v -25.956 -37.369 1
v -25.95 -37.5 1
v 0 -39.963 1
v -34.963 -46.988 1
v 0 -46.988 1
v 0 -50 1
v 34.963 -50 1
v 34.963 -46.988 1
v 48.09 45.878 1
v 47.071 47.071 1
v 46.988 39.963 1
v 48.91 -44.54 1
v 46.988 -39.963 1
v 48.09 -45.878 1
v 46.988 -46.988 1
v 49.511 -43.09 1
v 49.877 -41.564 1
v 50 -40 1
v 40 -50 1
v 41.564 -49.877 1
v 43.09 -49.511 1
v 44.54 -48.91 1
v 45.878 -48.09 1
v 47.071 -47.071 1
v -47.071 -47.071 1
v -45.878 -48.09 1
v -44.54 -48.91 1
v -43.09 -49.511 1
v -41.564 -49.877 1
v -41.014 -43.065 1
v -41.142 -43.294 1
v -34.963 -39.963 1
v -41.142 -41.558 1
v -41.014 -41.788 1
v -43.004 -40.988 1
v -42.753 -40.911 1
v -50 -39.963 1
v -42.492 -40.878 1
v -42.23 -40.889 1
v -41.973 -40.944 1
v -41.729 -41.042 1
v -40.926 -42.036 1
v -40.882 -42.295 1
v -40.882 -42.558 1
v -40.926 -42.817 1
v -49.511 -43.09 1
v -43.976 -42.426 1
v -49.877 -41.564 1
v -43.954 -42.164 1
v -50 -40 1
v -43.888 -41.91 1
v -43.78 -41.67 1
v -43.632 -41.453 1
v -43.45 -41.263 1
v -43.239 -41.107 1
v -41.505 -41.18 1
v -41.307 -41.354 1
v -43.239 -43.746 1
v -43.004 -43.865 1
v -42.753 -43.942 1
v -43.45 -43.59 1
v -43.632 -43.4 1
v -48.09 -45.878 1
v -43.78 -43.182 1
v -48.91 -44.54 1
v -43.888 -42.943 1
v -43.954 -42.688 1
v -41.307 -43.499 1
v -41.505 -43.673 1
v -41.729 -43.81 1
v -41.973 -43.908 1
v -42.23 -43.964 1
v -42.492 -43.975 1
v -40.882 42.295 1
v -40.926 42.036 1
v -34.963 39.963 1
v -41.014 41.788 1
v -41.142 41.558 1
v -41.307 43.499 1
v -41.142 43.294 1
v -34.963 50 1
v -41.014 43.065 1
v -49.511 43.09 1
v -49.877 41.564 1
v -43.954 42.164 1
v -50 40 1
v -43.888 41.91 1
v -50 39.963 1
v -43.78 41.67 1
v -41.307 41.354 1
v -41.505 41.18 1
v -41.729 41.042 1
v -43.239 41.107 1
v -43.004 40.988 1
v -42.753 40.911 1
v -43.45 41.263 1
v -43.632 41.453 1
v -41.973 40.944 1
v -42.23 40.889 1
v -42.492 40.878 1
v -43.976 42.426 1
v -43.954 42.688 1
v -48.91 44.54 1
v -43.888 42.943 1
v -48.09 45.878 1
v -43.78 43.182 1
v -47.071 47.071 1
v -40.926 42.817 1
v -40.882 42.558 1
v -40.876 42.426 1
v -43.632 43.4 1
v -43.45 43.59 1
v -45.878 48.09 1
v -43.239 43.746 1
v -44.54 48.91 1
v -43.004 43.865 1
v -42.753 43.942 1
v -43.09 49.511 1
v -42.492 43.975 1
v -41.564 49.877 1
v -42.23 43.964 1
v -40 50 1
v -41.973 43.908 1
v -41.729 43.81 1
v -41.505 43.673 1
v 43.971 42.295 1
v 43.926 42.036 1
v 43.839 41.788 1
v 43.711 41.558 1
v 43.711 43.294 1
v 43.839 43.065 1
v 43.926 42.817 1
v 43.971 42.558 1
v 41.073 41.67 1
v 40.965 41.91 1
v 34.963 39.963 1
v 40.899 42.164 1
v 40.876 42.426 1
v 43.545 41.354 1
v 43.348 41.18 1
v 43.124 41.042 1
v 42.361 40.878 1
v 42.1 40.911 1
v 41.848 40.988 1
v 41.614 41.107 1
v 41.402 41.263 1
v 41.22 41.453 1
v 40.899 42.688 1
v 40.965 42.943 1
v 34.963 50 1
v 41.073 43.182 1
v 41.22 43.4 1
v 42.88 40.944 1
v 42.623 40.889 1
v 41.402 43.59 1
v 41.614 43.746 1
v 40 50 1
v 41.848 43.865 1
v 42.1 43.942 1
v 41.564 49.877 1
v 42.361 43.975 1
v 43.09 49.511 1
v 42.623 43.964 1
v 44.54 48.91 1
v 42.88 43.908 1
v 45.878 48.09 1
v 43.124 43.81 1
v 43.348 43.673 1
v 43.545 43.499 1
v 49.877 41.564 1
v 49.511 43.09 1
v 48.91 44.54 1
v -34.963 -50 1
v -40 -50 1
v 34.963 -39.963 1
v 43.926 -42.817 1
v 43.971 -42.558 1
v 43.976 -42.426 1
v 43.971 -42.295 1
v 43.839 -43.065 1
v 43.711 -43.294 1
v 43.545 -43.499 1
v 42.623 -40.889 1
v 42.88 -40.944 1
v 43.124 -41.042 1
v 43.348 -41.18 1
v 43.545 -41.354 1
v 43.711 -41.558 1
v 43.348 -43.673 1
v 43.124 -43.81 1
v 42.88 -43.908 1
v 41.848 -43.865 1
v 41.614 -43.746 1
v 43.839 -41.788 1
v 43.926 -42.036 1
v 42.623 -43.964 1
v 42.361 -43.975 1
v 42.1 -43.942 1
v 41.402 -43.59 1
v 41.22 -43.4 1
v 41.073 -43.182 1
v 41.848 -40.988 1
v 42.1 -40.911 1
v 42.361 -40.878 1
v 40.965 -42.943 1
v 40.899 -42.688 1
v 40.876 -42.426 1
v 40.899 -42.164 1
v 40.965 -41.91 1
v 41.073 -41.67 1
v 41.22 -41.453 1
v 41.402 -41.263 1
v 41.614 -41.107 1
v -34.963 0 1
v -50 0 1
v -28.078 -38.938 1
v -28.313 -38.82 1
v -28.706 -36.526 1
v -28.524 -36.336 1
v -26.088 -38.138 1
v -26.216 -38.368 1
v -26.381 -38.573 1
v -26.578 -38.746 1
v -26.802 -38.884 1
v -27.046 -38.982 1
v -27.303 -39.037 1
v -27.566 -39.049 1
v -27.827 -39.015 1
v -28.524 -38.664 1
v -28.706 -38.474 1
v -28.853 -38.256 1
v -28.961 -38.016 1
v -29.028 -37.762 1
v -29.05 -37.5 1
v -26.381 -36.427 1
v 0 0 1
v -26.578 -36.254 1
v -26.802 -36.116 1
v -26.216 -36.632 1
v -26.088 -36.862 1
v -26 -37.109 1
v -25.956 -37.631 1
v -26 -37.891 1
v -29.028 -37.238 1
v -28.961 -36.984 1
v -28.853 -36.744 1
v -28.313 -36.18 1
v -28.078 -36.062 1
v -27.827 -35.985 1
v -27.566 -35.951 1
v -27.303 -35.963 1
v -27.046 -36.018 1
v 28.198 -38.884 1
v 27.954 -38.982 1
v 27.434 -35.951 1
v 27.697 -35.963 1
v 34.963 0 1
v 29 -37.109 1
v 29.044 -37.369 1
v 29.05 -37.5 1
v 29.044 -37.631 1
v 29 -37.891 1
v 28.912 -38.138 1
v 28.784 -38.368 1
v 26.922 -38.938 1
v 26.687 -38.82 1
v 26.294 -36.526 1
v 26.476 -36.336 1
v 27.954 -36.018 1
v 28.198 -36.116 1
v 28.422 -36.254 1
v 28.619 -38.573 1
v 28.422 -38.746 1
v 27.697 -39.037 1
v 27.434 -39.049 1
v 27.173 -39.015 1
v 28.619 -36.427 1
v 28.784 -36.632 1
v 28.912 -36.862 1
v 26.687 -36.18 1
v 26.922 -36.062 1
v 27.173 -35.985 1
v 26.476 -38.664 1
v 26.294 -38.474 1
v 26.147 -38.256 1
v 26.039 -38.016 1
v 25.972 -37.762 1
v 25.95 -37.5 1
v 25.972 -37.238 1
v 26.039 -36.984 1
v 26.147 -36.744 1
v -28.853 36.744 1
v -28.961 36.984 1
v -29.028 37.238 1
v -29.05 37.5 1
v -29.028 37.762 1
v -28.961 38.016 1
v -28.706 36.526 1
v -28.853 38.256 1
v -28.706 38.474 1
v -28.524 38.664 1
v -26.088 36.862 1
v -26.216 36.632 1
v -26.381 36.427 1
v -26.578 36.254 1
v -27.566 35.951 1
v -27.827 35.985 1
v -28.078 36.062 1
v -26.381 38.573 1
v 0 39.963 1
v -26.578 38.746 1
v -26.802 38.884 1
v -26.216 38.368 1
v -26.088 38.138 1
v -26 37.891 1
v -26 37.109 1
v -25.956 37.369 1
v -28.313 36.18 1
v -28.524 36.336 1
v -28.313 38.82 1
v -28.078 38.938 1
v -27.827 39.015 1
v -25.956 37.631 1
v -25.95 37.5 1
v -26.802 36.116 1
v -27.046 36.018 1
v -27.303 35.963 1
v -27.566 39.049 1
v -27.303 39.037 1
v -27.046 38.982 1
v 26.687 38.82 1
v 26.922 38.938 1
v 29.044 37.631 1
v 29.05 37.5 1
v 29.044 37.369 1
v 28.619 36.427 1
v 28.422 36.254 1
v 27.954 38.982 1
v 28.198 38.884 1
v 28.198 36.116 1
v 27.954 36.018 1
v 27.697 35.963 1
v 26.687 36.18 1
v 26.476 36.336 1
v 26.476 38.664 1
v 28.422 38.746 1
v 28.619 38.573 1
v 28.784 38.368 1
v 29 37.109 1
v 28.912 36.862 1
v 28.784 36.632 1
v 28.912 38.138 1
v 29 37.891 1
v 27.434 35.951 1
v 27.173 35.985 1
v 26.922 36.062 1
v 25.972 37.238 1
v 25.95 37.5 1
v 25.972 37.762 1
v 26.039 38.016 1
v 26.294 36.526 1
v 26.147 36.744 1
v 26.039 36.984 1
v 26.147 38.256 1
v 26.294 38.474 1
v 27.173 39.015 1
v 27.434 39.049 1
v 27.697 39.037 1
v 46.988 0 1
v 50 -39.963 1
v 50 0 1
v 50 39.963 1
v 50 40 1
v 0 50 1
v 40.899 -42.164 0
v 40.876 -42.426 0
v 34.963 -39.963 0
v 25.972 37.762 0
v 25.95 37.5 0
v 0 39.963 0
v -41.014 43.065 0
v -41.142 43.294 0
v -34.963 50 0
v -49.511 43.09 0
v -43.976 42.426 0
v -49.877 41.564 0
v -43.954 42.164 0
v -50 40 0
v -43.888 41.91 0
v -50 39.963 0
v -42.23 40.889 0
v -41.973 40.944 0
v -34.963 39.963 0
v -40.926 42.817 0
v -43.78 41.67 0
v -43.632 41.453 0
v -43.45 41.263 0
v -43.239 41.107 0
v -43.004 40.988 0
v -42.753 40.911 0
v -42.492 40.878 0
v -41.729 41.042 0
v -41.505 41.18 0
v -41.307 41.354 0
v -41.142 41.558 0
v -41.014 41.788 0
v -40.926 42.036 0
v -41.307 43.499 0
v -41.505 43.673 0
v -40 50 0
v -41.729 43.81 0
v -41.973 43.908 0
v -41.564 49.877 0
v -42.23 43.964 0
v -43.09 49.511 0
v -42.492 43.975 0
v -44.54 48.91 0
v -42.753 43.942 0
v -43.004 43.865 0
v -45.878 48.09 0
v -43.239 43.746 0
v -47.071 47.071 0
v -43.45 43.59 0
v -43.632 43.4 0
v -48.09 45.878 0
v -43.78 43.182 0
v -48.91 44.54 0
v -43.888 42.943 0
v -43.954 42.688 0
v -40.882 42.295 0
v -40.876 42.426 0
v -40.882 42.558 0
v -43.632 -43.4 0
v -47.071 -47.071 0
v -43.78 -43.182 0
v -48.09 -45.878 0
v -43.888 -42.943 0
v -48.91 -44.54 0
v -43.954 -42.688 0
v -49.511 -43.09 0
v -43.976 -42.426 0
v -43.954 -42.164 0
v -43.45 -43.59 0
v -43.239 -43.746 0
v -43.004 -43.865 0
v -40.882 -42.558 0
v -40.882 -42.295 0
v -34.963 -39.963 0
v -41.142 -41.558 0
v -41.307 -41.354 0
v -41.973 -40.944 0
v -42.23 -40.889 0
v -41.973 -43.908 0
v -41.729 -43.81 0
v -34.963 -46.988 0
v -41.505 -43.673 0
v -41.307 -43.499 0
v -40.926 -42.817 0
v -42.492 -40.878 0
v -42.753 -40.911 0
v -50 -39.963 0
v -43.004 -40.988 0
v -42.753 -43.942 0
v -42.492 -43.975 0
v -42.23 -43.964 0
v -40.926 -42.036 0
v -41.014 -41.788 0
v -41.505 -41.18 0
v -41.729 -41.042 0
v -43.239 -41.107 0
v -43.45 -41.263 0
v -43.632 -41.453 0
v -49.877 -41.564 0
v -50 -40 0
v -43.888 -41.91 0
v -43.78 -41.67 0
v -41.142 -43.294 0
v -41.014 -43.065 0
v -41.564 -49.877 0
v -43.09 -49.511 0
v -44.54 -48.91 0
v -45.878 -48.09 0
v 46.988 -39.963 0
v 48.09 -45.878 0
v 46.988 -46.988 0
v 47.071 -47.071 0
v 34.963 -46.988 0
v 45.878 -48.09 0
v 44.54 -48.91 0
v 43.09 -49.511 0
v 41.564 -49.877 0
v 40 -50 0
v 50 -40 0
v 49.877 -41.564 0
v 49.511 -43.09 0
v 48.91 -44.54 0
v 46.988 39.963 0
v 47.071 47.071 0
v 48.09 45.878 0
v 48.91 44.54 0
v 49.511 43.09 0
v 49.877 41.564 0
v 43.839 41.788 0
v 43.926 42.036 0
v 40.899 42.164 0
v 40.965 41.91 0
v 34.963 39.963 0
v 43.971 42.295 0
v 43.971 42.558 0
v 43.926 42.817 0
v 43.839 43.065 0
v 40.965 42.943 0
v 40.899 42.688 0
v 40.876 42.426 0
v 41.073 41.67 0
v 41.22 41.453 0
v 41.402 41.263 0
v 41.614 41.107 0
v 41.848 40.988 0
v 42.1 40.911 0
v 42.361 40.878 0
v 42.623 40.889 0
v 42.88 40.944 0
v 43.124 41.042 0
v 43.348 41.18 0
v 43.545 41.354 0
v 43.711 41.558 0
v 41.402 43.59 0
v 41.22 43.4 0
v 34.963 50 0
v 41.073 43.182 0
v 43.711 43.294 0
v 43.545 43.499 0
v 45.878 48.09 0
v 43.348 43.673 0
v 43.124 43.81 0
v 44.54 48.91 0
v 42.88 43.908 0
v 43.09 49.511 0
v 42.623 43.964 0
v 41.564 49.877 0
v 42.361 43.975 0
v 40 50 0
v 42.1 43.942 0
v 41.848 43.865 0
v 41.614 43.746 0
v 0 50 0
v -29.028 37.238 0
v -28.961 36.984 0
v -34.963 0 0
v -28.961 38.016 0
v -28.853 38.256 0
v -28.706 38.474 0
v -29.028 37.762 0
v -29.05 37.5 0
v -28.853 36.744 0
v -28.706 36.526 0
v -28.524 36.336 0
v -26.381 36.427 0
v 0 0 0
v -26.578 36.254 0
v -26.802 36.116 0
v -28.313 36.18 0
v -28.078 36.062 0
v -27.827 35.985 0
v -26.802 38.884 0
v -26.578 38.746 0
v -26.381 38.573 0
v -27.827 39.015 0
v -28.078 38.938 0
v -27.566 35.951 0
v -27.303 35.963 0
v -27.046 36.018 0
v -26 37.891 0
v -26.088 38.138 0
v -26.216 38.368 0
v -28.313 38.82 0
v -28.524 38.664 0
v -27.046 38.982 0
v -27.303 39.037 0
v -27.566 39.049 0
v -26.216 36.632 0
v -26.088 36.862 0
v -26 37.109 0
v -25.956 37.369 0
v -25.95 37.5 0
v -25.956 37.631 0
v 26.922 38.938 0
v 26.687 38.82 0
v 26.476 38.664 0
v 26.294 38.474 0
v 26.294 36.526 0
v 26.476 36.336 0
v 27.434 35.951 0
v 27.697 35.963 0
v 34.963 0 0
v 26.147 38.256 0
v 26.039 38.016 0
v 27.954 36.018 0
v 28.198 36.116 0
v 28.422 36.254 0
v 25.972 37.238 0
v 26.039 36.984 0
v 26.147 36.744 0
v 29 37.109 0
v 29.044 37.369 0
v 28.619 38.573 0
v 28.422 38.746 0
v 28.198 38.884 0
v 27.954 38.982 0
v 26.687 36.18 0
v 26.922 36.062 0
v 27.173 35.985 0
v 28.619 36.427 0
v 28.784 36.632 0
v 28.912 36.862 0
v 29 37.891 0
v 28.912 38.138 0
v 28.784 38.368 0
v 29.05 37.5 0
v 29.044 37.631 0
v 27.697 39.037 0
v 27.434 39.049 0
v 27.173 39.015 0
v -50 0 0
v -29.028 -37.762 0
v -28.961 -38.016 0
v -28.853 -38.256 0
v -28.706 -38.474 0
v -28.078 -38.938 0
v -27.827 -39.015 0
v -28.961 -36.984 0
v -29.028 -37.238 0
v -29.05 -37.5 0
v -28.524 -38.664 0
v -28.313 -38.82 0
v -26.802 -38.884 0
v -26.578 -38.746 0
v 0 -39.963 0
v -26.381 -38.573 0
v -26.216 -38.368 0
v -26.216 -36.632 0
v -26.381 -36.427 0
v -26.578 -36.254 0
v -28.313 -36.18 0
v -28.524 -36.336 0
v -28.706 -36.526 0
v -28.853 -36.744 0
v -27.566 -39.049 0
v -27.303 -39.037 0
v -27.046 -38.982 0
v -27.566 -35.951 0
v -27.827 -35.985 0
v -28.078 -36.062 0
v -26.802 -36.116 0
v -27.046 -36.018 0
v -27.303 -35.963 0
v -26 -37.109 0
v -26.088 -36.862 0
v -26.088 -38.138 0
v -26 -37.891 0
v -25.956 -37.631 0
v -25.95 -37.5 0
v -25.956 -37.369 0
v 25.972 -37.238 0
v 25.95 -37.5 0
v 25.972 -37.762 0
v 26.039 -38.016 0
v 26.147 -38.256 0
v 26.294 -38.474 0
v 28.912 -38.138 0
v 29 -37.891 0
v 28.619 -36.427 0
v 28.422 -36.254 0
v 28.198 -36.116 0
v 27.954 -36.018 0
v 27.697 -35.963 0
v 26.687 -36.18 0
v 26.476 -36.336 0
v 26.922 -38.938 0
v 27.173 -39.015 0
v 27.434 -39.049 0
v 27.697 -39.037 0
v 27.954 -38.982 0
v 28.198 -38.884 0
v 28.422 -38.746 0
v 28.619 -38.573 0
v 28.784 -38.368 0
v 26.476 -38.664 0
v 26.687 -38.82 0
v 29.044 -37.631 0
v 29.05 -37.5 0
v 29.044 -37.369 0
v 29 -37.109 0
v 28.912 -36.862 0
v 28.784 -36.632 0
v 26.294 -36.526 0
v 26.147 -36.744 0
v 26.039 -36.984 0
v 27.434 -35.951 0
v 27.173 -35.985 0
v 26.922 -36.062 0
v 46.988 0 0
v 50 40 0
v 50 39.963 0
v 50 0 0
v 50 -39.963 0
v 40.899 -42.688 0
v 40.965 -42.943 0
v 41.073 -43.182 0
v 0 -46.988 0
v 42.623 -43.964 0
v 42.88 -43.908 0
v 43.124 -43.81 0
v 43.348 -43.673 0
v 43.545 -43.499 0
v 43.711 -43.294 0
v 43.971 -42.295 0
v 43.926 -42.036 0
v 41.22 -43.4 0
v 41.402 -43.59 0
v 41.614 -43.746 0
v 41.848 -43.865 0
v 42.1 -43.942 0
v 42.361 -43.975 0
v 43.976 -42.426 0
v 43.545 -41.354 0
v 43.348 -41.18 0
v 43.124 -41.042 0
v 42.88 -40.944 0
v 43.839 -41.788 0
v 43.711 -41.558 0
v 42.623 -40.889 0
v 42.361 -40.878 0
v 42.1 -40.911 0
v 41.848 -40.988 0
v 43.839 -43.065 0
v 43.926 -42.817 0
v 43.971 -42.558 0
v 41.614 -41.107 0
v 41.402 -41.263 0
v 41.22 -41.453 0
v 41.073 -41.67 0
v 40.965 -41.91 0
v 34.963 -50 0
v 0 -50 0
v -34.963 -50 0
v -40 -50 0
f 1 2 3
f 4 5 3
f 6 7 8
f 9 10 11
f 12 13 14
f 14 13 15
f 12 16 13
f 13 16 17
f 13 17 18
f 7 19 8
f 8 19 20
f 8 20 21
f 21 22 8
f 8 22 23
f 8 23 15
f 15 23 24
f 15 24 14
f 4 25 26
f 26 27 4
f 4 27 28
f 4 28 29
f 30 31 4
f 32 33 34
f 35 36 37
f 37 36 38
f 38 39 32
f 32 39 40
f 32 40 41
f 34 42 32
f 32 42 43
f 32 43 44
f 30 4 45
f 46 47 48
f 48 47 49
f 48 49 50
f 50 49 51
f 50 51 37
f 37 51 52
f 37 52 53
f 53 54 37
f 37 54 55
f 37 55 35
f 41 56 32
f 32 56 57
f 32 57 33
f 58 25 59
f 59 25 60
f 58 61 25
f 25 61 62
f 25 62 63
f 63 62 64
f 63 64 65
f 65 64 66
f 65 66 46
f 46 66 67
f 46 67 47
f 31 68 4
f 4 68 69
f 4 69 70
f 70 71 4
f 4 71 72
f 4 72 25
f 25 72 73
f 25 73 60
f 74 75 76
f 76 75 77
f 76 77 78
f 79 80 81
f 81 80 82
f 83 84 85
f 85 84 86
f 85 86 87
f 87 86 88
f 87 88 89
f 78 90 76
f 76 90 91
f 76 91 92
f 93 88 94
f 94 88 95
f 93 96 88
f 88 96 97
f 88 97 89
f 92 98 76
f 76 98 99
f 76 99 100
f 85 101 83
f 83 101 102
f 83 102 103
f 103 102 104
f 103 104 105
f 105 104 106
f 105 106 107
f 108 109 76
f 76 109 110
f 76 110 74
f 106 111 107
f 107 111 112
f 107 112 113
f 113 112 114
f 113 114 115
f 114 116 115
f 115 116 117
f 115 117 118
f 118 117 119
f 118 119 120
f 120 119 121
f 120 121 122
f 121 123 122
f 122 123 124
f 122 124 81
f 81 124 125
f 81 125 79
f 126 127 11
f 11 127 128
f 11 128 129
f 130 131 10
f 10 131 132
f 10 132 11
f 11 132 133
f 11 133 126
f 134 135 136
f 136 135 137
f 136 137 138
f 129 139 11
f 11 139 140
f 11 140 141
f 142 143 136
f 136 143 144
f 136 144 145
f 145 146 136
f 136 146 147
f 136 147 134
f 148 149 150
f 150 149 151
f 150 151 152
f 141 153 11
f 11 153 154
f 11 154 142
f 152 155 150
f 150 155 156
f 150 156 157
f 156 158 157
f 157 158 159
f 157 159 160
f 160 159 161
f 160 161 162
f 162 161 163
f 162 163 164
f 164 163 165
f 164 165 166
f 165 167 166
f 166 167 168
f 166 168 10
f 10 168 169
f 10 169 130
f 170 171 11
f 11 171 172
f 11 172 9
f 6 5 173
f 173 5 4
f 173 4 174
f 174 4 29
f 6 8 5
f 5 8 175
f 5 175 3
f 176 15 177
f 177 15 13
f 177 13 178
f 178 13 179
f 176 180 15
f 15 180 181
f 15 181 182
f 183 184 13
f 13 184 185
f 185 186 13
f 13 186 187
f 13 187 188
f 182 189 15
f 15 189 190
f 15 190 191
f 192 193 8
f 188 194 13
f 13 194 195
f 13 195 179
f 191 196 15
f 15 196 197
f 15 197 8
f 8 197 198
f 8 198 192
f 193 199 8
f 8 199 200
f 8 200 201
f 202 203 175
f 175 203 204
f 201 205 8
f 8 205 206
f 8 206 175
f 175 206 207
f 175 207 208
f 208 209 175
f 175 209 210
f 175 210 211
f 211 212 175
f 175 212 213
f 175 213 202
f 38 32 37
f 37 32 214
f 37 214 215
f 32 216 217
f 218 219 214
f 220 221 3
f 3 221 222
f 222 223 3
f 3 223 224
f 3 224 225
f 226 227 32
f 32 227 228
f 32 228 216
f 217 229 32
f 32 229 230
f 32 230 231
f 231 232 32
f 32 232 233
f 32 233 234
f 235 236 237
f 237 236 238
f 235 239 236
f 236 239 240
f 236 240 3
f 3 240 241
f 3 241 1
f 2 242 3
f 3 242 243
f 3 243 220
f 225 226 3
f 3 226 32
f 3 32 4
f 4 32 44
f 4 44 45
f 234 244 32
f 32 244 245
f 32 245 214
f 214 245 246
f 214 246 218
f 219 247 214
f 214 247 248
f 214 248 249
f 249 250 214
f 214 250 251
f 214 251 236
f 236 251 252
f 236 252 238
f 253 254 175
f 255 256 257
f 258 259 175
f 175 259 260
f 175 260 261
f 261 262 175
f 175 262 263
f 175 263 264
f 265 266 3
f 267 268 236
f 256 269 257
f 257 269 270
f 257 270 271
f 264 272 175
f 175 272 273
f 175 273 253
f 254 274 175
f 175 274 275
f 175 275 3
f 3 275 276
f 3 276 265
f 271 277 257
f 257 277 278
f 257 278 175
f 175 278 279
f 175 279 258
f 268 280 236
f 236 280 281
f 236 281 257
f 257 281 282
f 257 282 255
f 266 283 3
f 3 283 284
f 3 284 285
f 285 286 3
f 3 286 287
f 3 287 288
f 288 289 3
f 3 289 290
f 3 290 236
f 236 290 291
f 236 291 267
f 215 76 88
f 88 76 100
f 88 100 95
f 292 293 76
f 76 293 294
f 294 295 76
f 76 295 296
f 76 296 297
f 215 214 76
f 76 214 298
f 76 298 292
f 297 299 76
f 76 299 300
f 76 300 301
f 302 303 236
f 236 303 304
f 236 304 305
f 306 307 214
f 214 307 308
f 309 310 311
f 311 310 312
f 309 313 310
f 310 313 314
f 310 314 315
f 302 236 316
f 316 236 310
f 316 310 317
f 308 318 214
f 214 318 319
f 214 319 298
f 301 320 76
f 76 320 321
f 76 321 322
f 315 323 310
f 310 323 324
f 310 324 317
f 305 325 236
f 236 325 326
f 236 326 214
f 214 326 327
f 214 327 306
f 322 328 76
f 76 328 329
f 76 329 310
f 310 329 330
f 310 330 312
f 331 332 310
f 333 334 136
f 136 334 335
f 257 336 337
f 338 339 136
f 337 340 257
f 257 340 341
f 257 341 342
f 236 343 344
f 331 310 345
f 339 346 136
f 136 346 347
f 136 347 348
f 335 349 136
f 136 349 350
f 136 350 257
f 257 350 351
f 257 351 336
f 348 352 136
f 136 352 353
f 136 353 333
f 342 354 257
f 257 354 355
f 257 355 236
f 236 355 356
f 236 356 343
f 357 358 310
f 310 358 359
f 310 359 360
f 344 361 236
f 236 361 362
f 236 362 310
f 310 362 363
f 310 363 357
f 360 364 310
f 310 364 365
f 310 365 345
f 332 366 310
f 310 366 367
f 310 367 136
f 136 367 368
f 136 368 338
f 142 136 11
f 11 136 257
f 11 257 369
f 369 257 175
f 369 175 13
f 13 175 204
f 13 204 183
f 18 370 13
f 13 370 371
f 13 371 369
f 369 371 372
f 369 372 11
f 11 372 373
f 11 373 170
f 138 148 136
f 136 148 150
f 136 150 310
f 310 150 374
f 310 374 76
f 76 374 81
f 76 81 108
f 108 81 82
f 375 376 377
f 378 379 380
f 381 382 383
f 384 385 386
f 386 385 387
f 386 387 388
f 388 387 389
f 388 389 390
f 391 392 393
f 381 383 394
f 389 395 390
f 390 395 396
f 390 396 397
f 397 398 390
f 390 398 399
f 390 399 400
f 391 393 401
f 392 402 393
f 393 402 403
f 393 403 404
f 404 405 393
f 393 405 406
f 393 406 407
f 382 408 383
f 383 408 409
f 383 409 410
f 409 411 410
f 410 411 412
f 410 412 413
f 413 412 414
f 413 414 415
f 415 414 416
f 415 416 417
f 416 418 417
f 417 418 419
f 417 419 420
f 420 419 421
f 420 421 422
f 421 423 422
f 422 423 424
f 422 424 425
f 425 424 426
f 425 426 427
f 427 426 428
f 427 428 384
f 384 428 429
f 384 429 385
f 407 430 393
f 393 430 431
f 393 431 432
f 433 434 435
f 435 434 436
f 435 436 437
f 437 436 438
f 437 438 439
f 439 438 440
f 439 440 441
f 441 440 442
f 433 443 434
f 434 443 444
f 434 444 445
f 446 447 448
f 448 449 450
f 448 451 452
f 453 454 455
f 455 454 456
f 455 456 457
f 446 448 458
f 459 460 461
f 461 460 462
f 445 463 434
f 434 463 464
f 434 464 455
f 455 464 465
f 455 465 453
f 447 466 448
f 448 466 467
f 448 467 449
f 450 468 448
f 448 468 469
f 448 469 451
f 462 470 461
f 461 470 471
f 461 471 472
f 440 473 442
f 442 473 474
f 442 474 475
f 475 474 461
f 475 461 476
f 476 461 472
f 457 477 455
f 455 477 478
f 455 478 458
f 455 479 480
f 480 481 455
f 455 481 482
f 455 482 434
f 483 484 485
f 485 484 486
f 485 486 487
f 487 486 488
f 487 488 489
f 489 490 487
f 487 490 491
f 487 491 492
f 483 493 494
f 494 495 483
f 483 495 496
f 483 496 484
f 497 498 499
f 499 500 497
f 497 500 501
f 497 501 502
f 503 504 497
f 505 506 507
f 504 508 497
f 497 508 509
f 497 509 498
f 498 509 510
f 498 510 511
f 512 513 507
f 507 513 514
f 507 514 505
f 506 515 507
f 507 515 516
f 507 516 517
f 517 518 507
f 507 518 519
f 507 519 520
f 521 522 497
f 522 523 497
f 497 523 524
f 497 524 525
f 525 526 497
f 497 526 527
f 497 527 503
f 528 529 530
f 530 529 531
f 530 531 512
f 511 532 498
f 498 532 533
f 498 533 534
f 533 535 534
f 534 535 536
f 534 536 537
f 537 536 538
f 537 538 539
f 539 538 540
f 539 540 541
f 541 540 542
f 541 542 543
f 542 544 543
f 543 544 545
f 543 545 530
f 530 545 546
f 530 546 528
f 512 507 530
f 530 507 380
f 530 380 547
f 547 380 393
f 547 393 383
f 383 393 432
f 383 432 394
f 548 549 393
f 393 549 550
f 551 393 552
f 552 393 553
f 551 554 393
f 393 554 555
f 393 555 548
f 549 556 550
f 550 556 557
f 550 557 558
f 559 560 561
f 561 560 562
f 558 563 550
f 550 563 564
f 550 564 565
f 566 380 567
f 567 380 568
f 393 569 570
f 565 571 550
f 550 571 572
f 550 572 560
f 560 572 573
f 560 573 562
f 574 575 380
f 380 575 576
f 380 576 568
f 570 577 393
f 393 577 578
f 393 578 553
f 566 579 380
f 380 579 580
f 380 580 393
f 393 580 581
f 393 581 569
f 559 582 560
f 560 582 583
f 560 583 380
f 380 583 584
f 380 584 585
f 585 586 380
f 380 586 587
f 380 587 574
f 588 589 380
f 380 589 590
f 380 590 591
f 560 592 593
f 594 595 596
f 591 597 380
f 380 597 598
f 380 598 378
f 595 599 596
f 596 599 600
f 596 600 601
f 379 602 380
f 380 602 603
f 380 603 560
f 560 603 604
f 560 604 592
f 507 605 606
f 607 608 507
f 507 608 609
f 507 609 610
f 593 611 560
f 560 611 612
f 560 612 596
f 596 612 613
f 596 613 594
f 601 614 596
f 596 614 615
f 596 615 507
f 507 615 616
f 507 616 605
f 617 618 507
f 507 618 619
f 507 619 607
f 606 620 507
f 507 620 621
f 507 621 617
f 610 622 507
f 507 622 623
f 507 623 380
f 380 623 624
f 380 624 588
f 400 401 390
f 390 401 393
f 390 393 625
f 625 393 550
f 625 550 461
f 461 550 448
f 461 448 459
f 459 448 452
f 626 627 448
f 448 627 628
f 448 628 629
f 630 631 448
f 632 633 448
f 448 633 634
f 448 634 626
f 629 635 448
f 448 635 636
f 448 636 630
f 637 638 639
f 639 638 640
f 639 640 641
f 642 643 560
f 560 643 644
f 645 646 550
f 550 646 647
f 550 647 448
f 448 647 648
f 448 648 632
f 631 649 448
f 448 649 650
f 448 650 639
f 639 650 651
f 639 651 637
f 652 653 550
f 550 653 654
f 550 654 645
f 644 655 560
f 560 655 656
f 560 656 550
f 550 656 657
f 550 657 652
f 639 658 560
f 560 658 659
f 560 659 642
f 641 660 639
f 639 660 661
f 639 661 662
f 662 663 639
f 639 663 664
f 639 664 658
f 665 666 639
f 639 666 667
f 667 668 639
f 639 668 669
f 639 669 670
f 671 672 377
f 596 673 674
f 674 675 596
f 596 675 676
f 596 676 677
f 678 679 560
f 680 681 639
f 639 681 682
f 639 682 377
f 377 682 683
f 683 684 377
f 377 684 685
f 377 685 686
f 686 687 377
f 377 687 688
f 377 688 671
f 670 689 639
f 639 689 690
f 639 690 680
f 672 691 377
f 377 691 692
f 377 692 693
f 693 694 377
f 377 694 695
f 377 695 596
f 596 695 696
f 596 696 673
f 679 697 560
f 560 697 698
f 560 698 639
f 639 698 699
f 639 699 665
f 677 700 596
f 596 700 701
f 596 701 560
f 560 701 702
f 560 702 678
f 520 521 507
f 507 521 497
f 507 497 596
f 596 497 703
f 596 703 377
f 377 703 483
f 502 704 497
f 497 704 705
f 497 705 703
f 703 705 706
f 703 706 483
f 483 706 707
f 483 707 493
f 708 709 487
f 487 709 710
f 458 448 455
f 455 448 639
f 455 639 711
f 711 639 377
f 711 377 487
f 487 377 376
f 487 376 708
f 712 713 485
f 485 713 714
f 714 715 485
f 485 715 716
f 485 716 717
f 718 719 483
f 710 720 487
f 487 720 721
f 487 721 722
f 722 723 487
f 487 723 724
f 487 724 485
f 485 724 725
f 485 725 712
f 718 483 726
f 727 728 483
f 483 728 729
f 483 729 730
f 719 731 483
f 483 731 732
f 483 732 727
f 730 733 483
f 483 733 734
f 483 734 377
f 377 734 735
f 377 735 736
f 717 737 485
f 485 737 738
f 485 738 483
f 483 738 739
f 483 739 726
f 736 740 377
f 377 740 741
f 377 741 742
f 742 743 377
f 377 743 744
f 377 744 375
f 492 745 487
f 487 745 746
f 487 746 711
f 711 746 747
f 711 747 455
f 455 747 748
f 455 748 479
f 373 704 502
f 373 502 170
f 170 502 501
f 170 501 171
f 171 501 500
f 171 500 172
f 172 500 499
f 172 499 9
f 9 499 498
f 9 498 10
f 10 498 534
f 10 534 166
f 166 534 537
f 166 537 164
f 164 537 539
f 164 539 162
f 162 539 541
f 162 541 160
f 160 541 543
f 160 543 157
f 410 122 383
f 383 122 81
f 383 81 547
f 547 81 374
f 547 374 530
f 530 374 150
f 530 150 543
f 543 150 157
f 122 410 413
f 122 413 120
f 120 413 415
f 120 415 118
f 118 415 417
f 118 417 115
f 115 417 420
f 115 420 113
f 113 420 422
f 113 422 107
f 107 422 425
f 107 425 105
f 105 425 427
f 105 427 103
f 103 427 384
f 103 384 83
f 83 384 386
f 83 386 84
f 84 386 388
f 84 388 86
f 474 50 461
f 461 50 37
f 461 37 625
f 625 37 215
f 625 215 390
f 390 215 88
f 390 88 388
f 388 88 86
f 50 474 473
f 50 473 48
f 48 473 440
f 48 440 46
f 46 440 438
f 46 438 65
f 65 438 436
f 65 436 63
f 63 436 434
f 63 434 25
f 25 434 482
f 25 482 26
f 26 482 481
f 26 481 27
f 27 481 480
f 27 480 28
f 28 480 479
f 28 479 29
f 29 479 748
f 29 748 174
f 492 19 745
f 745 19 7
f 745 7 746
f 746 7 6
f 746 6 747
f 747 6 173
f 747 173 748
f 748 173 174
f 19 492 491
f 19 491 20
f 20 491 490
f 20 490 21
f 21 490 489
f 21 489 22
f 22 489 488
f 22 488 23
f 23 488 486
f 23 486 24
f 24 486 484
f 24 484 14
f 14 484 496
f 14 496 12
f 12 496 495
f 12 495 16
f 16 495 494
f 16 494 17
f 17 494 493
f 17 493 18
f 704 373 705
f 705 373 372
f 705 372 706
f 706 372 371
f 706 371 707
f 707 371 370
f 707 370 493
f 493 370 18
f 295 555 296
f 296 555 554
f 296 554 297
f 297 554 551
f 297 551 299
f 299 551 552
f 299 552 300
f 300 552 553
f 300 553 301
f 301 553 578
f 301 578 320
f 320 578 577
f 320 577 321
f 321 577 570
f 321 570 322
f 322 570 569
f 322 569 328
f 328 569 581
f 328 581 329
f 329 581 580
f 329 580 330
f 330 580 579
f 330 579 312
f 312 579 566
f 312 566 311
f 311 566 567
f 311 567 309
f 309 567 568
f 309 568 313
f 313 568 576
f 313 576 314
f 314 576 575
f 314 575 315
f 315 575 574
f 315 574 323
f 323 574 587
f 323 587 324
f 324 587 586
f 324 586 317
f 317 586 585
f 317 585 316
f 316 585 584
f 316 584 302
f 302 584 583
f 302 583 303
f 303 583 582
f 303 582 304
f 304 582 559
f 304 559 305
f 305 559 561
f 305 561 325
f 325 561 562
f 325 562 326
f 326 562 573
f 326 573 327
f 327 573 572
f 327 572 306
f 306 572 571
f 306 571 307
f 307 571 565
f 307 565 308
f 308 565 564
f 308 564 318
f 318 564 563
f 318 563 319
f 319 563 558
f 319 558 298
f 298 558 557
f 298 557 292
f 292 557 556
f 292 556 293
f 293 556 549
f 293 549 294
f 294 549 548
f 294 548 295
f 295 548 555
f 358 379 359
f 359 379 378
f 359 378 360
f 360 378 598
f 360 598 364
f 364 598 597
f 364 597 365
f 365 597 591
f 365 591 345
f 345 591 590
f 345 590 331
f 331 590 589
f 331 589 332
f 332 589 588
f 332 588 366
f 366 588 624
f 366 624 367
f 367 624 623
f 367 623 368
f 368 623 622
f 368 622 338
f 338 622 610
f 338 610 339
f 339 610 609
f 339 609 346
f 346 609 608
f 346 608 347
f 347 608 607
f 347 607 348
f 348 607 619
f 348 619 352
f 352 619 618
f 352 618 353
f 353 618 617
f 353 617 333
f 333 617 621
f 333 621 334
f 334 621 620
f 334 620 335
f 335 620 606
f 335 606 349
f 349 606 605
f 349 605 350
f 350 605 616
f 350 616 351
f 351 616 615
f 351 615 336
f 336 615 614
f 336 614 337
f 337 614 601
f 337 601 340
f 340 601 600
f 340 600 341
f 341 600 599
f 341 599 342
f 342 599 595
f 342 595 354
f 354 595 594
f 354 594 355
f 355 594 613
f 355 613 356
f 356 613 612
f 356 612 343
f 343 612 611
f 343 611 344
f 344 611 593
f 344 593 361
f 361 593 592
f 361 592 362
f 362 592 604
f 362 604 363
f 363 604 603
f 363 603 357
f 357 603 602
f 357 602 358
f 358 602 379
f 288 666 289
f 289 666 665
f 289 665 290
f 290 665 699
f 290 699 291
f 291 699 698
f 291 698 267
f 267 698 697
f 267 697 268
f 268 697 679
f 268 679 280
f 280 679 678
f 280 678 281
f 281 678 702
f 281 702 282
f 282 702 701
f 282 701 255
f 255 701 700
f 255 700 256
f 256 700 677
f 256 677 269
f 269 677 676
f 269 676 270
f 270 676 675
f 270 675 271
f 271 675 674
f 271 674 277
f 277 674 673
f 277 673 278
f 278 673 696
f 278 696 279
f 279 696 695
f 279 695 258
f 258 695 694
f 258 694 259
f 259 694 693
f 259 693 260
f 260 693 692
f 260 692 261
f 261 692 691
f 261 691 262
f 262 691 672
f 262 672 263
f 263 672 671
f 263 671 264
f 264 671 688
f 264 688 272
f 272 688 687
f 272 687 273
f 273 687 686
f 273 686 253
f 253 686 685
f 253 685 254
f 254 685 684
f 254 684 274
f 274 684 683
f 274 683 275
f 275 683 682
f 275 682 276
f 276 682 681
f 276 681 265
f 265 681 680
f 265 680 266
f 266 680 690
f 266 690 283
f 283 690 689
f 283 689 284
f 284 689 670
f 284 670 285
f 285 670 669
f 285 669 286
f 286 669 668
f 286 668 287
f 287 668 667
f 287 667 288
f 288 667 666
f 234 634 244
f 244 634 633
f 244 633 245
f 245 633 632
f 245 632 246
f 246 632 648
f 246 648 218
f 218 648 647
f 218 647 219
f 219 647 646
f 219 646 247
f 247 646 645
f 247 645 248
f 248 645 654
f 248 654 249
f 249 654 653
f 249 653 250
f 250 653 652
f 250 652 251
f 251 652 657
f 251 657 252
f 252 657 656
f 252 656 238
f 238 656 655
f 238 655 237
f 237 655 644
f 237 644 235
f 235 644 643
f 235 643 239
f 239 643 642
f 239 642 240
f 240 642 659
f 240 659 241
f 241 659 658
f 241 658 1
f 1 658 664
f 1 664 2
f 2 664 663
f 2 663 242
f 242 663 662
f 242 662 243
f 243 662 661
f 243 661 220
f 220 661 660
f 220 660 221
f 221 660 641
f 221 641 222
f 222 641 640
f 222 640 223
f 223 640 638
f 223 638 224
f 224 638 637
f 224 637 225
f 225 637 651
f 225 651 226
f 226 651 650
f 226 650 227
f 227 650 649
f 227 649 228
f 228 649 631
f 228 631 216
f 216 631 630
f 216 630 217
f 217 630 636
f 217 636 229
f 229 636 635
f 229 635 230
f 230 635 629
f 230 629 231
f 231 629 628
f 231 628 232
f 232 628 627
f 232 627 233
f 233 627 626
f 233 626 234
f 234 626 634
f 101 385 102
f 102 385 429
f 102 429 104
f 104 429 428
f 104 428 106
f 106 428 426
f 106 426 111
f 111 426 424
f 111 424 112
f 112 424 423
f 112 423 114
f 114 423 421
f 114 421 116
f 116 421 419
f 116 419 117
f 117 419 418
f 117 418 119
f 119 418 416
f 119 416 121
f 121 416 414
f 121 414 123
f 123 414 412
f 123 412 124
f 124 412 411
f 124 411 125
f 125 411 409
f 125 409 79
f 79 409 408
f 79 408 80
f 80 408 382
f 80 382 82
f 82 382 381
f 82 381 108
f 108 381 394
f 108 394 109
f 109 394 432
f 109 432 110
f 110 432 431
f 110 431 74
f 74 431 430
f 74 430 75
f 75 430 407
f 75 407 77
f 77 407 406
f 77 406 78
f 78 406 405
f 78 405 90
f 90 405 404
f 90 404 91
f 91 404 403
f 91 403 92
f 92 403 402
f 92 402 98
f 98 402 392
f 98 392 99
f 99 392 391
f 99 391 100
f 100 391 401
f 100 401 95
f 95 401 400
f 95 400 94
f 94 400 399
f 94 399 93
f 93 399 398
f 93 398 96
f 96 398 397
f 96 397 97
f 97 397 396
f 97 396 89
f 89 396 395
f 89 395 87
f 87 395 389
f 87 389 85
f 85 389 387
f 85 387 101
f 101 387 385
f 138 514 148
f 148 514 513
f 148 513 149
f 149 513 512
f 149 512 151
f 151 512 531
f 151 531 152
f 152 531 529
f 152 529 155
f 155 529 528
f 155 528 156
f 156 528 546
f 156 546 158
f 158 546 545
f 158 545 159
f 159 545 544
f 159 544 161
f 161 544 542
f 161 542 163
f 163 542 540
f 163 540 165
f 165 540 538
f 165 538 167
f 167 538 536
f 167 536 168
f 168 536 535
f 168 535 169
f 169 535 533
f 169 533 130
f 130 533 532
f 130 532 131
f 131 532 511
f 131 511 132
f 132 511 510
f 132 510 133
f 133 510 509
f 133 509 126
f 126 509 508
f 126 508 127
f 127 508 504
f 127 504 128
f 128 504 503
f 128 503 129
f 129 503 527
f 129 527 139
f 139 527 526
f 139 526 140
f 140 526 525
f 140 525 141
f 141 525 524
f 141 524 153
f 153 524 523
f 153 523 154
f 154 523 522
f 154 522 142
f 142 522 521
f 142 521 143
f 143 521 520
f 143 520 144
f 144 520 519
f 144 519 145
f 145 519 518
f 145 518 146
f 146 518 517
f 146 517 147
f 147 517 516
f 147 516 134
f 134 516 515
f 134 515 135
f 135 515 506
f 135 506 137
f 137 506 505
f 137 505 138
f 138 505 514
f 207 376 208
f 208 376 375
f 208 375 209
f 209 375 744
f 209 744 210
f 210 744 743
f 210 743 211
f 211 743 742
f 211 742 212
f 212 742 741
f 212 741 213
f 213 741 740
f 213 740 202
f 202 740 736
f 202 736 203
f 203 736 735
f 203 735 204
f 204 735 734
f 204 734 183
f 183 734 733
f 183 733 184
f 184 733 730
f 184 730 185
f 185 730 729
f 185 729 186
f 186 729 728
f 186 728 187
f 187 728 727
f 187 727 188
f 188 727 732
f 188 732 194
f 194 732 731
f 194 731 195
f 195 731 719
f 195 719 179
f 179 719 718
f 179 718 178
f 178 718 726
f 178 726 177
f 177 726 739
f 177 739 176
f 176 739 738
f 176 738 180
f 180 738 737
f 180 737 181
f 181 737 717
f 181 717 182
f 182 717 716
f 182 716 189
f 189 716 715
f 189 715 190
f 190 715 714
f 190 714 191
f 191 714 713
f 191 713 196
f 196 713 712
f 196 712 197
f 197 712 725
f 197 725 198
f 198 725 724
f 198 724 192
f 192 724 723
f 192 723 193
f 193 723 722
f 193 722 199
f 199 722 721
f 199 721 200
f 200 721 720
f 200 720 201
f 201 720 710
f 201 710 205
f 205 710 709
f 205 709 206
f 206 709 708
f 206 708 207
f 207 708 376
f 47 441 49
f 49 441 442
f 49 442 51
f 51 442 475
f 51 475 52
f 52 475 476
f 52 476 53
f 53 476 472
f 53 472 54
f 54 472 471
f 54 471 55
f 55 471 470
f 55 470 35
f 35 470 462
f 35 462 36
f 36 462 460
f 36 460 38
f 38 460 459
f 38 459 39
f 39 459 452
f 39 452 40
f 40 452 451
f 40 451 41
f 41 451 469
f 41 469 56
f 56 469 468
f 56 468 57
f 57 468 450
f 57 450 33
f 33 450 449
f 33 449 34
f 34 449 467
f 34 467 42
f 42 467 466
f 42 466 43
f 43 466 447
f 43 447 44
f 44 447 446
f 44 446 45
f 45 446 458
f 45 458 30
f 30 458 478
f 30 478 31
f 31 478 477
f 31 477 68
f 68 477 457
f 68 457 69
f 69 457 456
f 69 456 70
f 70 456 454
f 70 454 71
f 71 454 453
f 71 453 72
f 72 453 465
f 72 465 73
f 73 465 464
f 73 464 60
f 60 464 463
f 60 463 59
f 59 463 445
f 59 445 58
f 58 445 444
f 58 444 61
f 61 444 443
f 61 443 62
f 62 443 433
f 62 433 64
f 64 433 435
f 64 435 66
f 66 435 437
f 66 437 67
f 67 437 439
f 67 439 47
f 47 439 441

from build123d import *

# Parameters (mm, degrees)
SKETCH_1_R      = 1.55
EXTRUDE_1_DEPTH = 1


with BuildPart() as part:
    # 草图1 → 凸台-拉伸1 (new body)
    with BuildSketch(Plane.XY):
        with BuildLine():
            Line((-40, -50), (40, -50))
            ThreePointArc((40, -50), (47.071067812, -47.071067812), (50, -40))
            Line((50, -40), (50, 40))
            ThreePointArc((50, 40), (47.071067812, 47.071067812), (40, 50))
            Line((40, 50), (-40, 50))
            ThreePointArc((-40, 50), (-47.071067812, 47.071067812), (-50, 40))
            Line((-50, 40), (-50, -40))
            ThreePointArc((-50, -40), (-47.071067812, -47.071067812), (-40, -50))
        make_face()
        with Locations((-27.5, 37.5)):
            Circle(SKETCH_1_R, mode=Mode.SUBTRACT)
        with Locations((27.5, 37.5)):
            Circle(SKETCH_1_R, mode=Mode.SUBTRACT)
        with Locations((27.5, -37.5)):
            Circle(SKETCH_1_R, mode=Mode.SUBTRACT)
        with Locations((-27.5, -37.5)):
            Circle(SKETCH_1_R, mode=Mode.SUBTRACT)
        with Locations((-42.426406871, 42.426406871)):
            Circle(SKETCH_1_R, mode=Mode.SUBTRACT)
        with Locations(Location((42.426406871, 42.426406871, 0), (0, 0, 180))):
            Circle(SKETCH_1_R, mode=Mode.SUBTRACT)
        with Locations((42.426406871, -42.426406871)):
            Circle(SKETCH_1_R, mode=Mode.SUBTRACT)
        with Locations(Location((-42.426406871, -42.426406871, 0), (0, 0, 180))):
            Circle(SKETCH_1_R, mode=Mode.SUBTRACT)
    extrude(amount=EXTRUDE_1_DEPTH)


solid = part.part
